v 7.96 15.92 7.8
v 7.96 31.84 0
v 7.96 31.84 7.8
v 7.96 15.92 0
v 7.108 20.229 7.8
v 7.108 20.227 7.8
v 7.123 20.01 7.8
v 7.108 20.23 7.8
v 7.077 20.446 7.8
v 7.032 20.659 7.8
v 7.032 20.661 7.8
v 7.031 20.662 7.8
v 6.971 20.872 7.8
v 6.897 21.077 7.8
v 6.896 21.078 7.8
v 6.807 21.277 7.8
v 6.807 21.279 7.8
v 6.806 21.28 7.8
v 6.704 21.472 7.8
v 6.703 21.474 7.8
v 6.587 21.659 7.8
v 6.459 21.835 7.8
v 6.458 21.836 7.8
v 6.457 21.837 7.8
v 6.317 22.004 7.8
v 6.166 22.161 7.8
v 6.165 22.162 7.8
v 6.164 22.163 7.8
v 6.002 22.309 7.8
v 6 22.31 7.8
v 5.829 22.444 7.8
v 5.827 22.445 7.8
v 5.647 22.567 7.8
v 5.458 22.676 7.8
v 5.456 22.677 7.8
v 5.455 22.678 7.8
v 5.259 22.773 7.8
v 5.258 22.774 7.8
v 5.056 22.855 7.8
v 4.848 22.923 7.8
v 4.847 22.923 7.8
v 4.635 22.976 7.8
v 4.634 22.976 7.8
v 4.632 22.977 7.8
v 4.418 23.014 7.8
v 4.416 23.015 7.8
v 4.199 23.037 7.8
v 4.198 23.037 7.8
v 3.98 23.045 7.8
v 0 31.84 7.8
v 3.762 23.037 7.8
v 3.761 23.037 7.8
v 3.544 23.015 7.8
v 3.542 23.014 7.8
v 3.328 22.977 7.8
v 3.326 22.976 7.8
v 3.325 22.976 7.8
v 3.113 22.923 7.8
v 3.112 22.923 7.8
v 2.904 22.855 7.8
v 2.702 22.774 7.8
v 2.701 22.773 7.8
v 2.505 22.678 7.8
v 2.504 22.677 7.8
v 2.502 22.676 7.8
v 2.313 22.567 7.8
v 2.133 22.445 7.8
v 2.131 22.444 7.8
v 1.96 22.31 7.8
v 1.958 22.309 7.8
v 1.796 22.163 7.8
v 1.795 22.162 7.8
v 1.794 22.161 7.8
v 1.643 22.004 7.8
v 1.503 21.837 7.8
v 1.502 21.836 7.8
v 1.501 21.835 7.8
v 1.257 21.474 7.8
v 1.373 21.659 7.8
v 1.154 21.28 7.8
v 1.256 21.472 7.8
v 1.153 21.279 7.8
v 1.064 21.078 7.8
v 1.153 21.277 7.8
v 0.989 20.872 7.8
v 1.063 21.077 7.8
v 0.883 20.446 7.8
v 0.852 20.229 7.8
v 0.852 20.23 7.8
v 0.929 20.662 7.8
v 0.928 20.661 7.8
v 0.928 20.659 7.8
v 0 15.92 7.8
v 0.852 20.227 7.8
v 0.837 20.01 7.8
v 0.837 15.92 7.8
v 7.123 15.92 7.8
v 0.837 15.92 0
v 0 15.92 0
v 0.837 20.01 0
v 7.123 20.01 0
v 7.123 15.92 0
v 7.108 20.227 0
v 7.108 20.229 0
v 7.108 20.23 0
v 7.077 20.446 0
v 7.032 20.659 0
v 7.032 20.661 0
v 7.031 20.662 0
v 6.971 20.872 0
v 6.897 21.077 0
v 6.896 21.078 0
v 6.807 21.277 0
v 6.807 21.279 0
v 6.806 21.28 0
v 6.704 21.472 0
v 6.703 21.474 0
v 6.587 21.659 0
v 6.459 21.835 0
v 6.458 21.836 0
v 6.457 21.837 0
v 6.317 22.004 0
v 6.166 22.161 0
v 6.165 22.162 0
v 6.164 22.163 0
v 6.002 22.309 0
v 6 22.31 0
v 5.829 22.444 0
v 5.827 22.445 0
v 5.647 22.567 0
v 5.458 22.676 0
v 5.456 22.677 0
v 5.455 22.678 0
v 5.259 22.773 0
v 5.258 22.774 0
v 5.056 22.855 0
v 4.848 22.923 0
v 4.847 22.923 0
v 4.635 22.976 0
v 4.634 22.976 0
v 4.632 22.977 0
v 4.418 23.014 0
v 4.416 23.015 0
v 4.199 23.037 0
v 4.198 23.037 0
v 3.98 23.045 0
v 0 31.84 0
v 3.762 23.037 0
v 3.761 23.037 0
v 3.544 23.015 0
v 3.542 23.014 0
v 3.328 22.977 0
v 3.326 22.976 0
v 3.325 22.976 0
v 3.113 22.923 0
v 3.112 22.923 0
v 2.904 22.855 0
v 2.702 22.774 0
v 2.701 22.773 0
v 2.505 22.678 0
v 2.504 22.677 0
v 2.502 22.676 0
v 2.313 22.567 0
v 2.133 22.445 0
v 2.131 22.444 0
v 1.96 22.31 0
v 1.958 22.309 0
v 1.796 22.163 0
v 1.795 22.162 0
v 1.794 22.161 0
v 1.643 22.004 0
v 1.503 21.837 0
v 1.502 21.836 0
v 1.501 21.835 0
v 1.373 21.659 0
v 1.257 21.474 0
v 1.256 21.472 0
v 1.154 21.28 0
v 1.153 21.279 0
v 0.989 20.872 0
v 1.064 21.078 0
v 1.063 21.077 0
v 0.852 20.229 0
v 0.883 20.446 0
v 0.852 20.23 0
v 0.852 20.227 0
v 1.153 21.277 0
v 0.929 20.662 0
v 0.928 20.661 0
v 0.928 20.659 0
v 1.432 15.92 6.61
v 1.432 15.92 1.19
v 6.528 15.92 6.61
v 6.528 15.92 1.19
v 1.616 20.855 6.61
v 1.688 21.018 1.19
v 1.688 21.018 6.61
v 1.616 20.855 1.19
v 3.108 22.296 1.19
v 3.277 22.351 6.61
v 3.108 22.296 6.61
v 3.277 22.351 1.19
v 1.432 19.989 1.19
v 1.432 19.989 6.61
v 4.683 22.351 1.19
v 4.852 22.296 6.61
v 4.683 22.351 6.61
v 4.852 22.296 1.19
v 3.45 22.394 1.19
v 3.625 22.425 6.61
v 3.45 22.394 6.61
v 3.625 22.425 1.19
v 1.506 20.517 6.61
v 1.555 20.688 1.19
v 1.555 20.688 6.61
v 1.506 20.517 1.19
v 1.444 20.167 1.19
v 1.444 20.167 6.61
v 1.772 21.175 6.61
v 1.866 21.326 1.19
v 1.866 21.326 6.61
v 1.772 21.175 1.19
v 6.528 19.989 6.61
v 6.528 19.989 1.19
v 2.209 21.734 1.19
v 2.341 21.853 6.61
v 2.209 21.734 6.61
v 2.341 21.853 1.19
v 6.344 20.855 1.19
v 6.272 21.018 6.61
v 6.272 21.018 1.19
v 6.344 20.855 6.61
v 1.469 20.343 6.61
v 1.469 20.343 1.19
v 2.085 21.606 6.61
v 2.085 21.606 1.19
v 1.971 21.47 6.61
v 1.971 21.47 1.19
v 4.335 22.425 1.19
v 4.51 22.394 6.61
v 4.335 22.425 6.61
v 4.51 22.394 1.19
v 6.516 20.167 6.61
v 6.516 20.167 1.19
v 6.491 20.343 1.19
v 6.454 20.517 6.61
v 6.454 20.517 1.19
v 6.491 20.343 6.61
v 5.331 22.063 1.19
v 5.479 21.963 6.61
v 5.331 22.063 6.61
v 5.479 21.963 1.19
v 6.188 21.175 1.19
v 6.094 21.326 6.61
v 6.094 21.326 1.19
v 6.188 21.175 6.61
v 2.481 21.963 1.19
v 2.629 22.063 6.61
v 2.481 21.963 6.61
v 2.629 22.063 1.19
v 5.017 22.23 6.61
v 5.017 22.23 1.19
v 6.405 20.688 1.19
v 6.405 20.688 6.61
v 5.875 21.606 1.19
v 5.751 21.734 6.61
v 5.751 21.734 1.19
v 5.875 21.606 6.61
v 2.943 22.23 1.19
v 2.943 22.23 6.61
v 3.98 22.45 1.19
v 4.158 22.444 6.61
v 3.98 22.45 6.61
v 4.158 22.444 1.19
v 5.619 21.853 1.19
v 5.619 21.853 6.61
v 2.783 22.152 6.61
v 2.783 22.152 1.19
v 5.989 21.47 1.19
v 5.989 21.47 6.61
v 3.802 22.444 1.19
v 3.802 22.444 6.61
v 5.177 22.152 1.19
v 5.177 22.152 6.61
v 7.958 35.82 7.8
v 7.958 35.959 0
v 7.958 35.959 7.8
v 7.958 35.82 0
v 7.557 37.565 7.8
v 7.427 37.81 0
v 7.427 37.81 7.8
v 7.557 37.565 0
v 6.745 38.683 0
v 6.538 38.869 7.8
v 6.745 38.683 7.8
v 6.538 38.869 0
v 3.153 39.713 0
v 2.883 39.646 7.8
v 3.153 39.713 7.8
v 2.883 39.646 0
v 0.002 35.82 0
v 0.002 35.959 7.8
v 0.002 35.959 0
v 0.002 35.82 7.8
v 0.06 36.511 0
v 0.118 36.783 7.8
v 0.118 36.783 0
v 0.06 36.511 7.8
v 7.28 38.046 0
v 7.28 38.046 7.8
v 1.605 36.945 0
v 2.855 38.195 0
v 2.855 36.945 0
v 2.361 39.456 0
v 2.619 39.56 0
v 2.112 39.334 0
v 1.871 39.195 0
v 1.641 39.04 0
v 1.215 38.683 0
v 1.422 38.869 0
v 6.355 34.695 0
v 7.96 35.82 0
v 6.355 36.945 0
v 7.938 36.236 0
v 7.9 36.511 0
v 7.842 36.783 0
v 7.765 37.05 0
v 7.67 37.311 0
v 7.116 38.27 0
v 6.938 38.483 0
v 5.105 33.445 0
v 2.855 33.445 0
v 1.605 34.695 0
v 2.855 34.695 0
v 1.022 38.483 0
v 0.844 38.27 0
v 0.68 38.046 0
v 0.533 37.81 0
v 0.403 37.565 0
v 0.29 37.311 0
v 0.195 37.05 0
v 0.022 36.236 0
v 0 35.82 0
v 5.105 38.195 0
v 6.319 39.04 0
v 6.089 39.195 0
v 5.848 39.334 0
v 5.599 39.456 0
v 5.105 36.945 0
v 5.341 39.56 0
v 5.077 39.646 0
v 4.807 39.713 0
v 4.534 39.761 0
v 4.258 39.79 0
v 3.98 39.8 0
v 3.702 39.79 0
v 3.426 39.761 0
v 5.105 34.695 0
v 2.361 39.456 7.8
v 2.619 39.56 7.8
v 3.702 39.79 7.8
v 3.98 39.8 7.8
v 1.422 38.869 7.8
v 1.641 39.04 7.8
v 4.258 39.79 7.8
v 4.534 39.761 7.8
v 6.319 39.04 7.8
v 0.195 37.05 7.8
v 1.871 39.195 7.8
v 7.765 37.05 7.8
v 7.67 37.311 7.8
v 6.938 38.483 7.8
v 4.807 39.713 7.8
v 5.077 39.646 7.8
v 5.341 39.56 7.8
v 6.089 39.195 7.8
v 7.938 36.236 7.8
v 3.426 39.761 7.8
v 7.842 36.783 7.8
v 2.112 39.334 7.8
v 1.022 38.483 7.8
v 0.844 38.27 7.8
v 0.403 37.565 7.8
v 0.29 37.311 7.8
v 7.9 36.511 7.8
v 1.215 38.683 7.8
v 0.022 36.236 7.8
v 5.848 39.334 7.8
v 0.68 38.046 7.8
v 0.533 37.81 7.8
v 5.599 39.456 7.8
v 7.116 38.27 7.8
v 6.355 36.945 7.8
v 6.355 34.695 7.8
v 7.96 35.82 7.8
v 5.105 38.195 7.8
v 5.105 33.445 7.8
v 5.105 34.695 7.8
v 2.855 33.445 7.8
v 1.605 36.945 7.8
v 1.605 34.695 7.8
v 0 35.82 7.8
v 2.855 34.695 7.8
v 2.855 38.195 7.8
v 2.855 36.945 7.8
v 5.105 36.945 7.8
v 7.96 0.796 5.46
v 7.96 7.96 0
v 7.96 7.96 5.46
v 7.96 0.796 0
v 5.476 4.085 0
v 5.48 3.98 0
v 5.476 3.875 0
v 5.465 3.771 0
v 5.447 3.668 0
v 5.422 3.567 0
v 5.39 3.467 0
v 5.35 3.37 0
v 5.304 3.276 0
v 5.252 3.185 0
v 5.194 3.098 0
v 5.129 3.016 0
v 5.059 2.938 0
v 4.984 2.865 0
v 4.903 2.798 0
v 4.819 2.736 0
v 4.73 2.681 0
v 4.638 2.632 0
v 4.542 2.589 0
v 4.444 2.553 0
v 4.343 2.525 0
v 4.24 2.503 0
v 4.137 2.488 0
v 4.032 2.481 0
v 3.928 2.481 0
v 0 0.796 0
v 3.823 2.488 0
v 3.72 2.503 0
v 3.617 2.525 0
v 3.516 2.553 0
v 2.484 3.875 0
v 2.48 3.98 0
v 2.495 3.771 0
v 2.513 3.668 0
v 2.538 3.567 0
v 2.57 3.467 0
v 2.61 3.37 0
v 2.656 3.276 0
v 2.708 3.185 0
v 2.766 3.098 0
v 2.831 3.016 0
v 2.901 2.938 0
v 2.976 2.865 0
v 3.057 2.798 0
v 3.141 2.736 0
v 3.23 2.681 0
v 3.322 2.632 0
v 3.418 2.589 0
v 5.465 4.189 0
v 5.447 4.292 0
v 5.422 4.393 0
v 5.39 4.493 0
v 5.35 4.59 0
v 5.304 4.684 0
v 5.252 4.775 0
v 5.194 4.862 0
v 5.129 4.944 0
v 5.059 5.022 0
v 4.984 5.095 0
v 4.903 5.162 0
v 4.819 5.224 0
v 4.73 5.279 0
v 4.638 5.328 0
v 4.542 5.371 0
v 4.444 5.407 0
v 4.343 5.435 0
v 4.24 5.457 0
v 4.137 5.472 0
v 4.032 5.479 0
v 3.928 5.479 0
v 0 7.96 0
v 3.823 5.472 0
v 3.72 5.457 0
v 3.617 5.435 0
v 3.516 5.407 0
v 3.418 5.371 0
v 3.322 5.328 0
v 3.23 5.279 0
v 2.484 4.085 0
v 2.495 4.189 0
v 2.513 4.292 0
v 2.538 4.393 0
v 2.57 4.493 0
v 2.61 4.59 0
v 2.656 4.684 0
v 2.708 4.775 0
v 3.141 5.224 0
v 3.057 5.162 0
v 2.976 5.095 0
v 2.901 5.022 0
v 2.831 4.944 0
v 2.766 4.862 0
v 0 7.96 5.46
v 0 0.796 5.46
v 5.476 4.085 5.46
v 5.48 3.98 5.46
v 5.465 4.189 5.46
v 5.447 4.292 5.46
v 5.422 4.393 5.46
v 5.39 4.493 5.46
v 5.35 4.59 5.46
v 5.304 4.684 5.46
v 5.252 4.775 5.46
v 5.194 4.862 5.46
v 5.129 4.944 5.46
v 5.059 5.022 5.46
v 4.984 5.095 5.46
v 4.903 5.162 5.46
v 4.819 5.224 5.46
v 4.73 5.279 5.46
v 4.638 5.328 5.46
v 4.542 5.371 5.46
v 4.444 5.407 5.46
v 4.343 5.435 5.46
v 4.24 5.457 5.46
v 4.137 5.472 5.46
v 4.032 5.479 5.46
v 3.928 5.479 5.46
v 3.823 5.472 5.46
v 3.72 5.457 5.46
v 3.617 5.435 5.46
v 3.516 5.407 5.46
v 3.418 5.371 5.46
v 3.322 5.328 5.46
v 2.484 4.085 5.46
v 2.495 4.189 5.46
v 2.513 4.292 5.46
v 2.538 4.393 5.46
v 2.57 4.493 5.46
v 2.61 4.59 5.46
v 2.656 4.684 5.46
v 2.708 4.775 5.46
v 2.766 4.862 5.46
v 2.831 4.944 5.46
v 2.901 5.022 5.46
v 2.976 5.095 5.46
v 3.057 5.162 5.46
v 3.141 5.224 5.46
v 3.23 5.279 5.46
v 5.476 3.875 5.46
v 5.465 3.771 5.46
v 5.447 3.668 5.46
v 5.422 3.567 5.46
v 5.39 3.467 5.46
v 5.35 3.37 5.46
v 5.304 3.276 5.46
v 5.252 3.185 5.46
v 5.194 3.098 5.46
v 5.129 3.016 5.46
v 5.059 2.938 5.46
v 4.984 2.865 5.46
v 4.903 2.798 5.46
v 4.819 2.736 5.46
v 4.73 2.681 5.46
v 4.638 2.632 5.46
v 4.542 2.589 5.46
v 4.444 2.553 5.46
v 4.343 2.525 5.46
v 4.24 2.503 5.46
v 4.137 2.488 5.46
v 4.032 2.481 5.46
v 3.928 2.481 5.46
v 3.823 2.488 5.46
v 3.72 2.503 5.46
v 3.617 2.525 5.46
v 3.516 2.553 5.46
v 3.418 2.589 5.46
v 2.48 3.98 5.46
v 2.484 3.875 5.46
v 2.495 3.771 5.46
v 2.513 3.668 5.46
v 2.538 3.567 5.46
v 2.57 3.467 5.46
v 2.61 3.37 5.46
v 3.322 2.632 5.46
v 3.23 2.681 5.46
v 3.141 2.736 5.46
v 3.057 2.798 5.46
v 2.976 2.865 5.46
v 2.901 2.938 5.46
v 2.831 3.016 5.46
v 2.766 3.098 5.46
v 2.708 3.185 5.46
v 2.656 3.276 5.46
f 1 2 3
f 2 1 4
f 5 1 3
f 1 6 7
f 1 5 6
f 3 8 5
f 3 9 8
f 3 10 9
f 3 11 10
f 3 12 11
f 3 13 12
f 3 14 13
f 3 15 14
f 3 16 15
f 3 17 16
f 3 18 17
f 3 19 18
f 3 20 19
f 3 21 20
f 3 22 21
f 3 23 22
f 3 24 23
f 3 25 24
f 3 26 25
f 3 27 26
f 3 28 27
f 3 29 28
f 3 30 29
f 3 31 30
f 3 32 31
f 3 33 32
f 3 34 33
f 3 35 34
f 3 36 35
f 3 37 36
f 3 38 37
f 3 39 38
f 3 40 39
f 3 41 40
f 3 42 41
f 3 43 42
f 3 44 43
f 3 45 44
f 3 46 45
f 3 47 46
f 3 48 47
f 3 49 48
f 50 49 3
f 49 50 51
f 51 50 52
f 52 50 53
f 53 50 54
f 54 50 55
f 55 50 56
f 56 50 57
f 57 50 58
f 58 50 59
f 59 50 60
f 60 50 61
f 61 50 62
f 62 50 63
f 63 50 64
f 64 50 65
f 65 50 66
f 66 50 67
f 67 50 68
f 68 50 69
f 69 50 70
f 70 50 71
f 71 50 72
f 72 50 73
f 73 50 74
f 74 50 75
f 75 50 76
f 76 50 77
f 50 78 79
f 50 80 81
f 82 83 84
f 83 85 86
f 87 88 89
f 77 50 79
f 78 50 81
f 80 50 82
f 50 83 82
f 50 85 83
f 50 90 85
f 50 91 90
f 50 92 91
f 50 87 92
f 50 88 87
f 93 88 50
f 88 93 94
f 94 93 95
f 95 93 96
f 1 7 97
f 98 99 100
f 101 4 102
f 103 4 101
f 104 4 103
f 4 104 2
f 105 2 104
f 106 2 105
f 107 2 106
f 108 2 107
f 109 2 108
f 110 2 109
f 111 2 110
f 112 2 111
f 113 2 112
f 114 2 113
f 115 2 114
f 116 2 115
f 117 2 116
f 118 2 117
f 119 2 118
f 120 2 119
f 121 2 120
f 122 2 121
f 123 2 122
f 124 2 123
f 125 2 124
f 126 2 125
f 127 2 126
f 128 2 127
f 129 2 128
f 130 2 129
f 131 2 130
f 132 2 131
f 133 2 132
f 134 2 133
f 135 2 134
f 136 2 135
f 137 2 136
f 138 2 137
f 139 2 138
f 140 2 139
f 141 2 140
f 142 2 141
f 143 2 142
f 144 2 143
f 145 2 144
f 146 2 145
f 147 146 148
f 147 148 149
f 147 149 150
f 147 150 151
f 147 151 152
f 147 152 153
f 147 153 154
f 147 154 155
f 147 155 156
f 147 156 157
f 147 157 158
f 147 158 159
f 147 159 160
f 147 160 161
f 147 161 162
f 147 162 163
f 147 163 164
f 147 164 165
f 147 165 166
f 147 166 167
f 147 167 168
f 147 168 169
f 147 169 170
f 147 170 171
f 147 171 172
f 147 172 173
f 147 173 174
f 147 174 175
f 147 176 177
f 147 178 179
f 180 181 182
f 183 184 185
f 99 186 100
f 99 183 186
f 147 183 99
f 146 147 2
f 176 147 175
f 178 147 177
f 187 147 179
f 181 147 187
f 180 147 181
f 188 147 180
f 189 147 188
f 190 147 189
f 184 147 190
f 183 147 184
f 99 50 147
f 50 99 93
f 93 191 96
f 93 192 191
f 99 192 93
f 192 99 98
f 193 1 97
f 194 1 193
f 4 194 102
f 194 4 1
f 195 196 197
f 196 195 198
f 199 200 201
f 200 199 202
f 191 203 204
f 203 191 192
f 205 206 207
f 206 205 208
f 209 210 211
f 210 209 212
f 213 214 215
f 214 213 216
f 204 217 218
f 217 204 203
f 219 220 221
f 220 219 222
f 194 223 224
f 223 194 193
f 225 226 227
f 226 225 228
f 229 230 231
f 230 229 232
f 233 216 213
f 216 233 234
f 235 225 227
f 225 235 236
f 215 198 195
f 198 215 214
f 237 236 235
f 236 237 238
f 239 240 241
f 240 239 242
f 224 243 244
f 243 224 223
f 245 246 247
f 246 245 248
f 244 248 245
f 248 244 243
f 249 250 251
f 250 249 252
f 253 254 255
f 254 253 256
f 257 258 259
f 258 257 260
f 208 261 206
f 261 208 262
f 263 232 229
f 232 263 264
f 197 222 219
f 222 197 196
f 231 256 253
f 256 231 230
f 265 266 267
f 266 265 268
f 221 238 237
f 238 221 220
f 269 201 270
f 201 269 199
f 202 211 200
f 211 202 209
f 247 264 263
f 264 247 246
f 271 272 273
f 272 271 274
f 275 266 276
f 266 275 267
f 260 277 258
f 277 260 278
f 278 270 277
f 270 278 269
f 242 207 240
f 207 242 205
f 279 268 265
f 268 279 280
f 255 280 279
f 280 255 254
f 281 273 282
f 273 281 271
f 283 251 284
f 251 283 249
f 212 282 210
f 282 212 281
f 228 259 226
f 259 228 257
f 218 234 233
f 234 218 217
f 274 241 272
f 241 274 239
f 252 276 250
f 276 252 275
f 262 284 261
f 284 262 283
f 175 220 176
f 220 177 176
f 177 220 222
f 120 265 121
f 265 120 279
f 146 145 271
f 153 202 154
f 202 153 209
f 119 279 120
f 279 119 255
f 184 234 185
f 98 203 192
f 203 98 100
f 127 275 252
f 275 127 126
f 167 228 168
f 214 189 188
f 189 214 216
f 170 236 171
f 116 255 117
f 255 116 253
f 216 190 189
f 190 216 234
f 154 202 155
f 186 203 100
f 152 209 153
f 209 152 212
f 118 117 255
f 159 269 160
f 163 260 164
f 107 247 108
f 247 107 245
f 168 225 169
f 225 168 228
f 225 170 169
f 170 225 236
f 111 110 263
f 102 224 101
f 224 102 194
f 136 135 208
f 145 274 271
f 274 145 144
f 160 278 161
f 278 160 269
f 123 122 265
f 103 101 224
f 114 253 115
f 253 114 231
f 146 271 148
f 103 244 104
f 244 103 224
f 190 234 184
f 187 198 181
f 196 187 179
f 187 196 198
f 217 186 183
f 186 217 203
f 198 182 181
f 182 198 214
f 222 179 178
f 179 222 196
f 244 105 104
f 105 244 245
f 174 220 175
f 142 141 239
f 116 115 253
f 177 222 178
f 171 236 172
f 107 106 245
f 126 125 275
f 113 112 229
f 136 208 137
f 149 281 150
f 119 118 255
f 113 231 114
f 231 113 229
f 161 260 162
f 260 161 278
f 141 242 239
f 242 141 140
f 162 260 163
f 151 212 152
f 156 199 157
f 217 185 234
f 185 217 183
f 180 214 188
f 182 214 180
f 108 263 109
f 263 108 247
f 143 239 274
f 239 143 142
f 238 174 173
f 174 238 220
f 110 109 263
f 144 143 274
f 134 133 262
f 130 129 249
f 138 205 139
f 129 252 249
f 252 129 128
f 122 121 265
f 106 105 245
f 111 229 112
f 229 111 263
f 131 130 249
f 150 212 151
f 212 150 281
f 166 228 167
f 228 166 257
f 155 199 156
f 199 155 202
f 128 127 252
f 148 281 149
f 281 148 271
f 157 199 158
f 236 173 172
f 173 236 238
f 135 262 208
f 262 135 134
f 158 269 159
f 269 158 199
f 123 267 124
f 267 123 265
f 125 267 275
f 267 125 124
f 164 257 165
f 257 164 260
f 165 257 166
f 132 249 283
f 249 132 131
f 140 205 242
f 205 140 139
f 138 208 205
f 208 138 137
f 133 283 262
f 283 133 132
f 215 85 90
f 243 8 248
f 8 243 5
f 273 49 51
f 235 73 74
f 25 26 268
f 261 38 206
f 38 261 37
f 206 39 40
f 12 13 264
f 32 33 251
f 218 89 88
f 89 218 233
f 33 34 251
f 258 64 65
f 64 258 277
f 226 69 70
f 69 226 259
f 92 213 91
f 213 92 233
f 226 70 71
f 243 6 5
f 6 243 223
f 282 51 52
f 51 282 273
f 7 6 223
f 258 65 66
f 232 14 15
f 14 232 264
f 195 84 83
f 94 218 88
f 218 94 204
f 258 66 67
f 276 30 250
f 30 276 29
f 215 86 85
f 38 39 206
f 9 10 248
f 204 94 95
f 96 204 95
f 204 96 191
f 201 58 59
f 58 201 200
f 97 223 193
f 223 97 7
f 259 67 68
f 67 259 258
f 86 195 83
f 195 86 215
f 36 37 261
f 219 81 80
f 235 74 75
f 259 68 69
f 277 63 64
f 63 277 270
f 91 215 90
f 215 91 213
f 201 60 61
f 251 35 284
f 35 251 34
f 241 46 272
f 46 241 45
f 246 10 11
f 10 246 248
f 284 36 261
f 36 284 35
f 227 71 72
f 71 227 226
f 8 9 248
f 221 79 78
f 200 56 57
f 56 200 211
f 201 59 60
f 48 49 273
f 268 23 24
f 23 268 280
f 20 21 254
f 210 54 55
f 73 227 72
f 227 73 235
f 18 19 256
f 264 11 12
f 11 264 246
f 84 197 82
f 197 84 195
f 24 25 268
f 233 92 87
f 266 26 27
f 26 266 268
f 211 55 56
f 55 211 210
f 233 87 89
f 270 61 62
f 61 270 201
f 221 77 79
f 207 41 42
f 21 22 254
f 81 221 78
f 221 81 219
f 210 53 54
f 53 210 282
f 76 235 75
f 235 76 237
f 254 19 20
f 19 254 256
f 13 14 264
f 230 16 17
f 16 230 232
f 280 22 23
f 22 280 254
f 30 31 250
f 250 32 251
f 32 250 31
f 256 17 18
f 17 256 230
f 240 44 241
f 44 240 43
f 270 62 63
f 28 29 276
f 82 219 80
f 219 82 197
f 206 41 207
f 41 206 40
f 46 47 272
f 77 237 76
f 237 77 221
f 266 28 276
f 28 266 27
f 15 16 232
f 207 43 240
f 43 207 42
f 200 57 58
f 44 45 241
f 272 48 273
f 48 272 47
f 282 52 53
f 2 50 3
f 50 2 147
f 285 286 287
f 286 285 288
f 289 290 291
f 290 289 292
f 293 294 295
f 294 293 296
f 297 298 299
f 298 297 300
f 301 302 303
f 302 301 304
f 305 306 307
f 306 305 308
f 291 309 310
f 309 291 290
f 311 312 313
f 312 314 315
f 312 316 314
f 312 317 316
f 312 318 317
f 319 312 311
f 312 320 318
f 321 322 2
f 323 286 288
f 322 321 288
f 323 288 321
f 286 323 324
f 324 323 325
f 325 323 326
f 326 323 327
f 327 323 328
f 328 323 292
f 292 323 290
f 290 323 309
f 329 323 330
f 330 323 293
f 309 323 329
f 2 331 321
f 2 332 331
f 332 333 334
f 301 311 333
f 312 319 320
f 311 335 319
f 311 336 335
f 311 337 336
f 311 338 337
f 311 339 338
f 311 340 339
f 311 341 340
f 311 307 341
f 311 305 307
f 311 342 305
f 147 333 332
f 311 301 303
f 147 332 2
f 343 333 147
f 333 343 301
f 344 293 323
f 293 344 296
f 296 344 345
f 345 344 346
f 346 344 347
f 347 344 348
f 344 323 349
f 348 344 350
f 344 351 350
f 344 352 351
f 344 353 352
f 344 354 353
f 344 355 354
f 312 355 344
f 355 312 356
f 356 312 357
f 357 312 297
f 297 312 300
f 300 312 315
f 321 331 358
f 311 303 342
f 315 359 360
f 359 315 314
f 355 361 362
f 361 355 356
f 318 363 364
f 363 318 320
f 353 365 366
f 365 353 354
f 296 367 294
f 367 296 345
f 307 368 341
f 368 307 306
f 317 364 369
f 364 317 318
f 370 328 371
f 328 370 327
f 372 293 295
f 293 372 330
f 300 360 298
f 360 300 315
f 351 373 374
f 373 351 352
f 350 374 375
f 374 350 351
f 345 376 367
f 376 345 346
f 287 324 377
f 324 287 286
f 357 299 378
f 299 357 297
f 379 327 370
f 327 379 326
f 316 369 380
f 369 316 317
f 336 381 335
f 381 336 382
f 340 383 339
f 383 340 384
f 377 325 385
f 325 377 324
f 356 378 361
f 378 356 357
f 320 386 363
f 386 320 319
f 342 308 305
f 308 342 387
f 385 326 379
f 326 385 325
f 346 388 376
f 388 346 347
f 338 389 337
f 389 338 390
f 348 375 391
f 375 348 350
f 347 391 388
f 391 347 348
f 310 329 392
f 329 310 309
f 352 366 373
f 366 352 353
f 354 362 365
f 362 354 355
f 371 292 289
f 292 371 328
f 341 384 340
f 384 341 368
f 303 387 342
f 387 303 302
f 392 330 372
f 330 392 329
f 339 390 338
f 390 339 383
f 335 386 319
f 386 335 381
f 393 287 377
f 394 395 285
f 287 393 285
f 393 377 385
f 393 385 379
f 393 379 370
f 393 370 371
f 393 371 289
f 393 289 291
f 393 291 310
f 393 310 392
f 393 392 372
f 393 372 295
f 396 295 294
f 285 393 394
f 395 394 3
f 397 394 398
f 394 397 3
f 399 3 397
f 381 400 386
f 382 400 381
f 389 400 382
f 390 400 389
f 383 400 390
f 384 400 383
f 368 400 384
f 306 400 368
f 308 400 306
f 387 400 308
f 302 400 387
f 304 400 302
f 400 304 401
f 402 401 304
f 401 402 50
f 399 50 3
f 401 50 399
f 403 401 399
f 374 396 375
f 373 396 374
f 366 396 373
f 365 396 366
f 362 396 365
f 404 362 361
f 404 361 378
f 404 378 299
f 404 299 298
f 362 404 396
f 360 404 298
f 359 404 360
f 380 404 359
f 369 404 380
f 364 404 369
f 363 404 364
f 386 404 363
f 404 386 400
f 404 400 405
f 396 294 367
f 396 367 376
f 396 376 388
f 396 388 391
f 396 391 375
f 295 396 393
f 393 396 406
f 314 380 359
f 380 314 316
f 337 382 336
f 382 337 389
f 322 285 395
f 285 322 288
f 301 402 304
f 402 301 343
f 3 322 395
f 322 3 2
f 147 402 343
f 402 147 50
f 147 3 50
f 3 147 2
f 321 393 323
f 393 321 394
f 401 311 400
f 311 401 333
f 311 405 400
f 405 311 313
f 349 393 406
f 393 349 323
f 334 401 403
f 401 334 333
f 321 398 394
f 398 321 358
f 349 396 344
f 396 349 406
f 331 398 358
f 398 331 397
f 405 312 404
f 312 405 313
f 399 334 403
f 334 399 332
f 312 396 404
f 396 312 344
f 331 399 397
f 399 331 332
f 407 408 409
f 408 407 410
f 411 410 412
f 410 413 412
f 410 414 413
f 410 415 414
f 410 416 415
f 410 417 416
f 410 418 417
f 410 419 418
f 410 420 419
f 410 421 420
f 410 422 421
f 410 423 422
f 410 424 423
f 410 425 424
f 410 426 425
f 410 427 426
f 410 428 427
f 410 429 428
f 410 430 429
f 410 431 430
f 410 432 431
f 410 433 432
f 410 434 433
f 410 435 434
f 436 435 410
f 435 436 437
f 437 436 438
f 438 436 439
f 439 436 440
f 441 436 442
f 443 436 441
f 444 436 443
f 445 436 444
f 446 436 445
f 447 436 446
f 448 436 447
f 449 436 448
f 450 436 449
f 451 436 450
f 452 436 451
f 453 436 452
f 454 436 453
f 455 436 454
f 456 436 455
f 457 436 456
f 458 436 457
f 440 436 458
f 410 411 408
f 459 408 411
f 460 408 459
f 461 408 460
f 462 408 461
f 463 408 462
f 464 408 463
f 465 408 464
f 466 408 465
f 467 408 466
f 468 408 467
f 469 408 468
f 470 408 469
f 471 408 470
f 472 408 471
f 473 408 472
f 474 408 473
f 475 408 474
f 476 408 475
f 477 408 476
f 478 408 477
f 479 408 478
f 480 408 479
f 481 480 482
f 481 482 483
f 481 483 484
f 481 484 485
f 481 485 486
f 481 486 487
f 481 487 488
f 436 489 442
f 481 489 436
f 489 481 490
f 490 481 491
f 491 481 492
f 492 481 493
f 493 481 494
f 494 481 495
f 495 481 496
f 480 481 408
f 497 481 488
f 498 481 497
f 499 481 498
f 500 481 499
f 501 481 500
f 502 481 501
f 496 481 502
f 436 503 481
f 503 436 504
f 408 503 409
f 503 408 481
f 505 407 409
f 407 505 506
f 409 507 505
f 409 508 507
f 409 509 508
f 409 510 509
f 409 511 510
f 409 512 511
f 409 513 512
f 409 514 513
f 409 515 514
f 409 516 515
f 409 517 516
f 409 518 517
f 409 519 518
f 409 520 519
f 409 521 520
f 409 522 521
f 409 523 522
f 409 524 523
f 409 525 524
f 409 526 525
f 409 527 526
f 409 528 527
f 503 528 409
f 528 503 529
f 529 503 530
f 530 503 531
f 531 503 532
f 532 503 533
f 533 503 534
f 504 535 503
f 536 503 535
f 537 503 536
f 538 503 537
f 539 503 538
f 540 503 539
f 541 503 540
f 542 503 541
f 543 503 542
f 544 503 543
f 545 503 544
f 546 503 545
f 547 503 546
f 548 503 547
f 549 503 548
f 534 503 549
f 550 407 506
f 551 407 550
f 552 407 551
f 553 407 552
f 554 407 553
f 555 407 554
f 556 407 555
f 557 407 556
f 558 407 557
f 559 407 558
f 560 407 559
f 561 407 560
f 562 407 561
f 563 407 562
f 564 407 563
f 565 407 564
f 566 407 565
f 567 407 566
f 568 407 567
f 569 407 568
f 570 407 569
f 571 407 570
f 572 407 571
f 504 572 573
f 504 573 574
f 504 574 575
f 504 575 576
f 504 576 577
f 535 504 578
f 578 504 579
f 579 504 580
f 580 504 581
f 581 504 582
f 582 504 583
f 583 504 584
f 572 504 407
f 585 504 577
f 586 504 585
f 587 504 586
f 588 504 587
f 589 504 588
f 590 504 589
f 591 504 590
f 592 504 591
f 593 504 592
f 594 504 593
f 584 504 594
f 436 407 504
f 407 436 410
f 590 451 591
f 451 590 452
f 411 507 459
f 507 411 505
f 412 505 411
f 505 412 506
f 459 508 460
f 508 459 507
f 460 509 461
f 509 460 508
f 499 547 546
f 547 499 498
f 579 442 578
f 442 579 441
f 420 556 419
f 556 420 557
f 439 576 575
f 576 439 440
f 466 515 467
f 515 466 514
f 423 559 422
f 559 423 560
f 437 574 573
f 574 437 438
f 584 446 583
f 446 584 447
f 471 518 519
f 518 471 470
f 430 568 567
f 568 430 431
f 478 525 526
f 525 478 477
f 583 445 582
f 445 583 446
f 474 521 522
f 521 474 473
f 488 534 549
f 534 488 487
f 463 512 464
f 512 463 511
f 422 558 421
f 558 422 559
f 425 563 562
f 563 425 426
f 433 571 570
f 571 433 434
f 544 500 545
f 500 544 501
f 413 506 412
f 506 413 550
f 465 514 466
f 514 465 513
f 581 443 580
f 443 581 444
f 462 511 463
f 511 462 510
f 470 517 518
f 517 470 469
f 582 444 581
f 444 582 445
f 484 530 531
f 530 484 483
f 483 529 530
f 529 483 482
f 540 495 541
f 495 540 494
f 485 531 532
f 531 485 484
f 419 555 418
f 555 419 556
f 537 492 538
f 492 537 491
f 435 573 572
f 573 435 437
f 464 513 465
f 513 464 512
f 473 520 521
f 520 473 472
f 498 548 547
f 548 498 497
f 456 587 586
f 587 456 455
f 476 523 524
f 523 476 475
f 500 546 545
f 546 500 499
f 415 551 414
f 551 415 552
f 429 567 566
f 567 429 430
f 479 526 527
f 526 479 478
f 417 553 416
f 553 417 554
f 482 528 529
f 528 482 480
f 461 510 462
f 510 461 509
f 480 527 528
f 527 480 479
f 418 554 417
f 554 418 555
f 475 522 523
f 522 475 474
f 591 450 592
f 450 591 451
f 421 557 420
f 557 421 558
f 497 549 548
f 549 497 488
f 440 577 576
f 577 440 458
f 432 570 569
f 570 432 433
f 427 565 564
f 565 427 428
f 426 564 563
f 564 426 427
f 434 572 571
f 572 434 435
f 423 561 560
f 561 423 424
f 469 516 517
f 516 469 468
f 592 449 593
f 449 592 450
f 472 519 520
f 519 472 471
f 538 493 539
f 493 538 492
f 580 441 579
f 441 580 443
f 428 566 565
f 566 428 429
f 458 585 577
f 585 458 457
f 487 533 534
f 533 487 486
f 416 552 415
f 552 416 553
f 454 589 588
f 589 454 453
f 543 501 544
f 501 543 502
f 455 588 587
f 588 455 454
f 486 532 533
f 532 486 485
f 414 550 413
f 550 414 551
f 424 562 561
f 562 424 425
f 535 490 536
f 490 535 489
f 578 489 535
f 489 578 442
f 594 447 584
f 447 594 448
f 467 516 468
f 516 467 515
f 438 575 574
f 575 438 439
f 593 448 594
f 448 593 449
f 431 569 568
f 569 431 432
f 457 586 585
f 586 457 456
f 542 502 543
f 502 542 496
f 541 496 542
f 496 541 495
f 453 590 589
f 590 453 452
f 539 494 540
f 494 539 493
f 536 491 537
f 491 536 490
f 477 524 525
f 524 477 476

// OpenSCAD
// file: lego-lib.scad
UU = 39.8 / 5;
HH = 23.4 / 3;

ATOM = .01;

function lego_h() = HH;
function lego_u() = UU;

module lego_op(args) {
    base0 = args[0];
    dx = args[1];
    dy = args[2];
    dz = args[3];
    rx = args[4];
    ry = args[5];
    rz = args[6];
    hole = args[7];
    rhz = args[8];

    base = abs(base0);

    difference() {
        // basic form
        scale([UU, UU, HH])
        translate([.5, .5, .5])
        intersection() {
            if (base0>=0)
                cube([1, 1, 1], center=true);

            // Intersects
            
            rotate([rx*90, ry*90, rz*90]) {
                if (base==0) {
                }
                else if (base==1) {
                    // cube
                    translate([dx, dy, dz])
                    cube([1, 1, 1], center=true);
                }
                else if (base==2) {
                    // quarter cylinder
                    intersection() {
                        translate([dx, dy, dz])
                        cube([1, 1, 1], center=true);
                        translate([-.5, -.5, 0])
                        cylinder(r=1, h=1, center=true);
                    }
                }
                else if (base==3) {
                    // eighth sphere
                    intersection() {
                        translate([dx, dy, dz])
                        cube([1, 1, 1], center=true);
                        translate([-.5, -.5, -.5])
                        sphere(r=1);
                    }
                }
                else if (base==4) {
                    // 1 corner rounded
                    intersection() {
                        translate([dx, dy, dz])
                        cube([1, 1, 1], center=true);
                        
                        union() {
                            cylinder(d=1, h=1, center=true);
                            translate([.5, 0, 0])
                            cube([1, 1, 1], center=true);
                            translate([0, .5, 0])
                            cube([1, 1, 1], center=true);
                        }
                    }
                }
                else if (base==5) {
                    // 2 corner rounded
                    intersection() {
                        translate([dx, dy, dz])
                        cube([1, 1, 1], center=true);
                        
                        union() {
                            cylinder(d=1, h=1, center=true);
                            translate([.5, 0, 0])
                            cube([1, 1, 1], center=true);
                        }
                    }
                }
                else if (base==6) {
                    // cylinder
                    d = 1*.8;
                    translate([dx, dy, dz])
                    rotate([0, 90, 0])
                    cylinder(d=d, h=1, center=true);
                }
            }
        }

        // Removals

        translate([UU/2, UU/2, 0])
        rotate([0, 0, rhz*90])
        translate([-UU/2, -UU/2, 0]) {
            // x/y hole
            if (hole==1) {
                h = 1.2;
                d1 = 5.3;
                d2 = 6.5;

                translate([UU/2, UU/2, HH/2])
                rotate([90, 0, 0])
                cylinder(d=d1, h=HH*2, center=true);

                translate([UU/2, UU+ATOM, HH/2])
                rotate([90, 0, 0])
                cylinder(d1=d2, d2=d1, h=h);

                translate([UU/2, h-ATOM, HH/2])
                rotate([90, 0, 0])
                cylinder(d2=d2, d1=d1, h=h);
            }
            // z hole
            if (hole==2) {
                h = 1.2;
                d1 = 5.1;
                d2 = 6.3;
                translate([UU/2, UU/2, HH/2])
                cylinder(d=d1, h=HH*2, center=true);

                translate([UU/2, UU/2, -ATOM])
                cylinder(d1=d2, d2=d1, h=h);

                translate([UU/2, UU/2, HH-h+ATOM])
                cylinder(d2=d2, d1=d1, h=h);
            }
            // cross
            xl = 4.2 +.15 +.4;
            xw = 1.7 +.15 +.4;
            xo = .15;
            // x/y cross
            if (hole==3) {
                translate([0, UU/2, HH/2]) {
                    cube([HH*3, xl+xo, xw+xo], center=true);
                    cube([HH*3, xw+xo, xl+xo], center=true);
                }            
            }
            // z cross
            if (hole==4) {
                translate([UU/2, UU/2, 0]) {
                    cube([xl, xw, HH*3], center=true);
                    cube([xw, xl, HH*3], center=true);
                }            
            }
            // grill
            if (hole==5) {
                for (h=[.25, .75]) {
                    translate([UU*.1, -UU/2, HH*h])
                    rotate([0, 180+45, 0])
                    cube([UU, UU*2, UU]);
                }
            }
            // z long hole
            if (hole==6) {
                h = 1.2;
                d1 = 5.1;
                d2 = 6.3;
                
                hull() for(x=[0, -UU]) translate([x, 0, 0])
                translate([UU/2, UU/2, HH/2])
                cylinder(d=d1, h=HH*2, center=true);

                hull() for(x=[0, -UU]) translate([x, 0, 0])
                translate([UU/2, UU/2, -ATOM])
                cylinder(d1=d2, d2=d1, h=h);

                hull() for(x=[0, -UU]) translate([x, 0, 0])
                translate([UU/2, UU/2, HH-h+ATOM])
                cylinder(d2=d2, d1=d1, h=h);
            }
            // top grind
            if (hole==7) {
                translate([0, 0, HH*.8])
                cylinder(r=UU*2, h=HH);
            }
            // z tiny hole
            if (hole==8) {
                d = 3;
                translate([UU/2, UU/2, HH/2])
                cylinder(d=d, h=HH*2, center=true);
            }
        }
    }
}

module lego_block(t, x, y, z) {
    if (t && t!=[]) {
        translate([x*UU, y*UU, z*HH])
        lego_op(t);
    }
}

module lego_build(map) {
    _ = [1, 0, 0, 0, 0, 0, 0, 0, 0];
    for (z = [0:len(map)-1]) {
        plane = map[z];
        for (y = [0:len(plane)-1]) {
            row = plane[y];
            for (x = [0:len(row)-1]) {
                cell = row[x];
                if (cell==0) {
                }
                else if (cell==1) {
                    lego_block(_, x, y, z);
                }
                else {
                    lego_block(cell, x, y, z);
                }
            }
        }
    }
}
// main file
use <lego-lib.scad>

$fn = 90;
ATOM = .01;

A = [1, 0, .1, -.3, 0, 0, 0, 8, 0];

B = [1, 0, 0, 0, 0, 0, 0, 6, 1];
C = [5, 0, 0, 0, 0, 0, 3, 4, 0];

MAP2 = [
    [
        [A],
        [0],
        [B],
        [1],
        [C],
    ],
];


lego_build(MAP2);
